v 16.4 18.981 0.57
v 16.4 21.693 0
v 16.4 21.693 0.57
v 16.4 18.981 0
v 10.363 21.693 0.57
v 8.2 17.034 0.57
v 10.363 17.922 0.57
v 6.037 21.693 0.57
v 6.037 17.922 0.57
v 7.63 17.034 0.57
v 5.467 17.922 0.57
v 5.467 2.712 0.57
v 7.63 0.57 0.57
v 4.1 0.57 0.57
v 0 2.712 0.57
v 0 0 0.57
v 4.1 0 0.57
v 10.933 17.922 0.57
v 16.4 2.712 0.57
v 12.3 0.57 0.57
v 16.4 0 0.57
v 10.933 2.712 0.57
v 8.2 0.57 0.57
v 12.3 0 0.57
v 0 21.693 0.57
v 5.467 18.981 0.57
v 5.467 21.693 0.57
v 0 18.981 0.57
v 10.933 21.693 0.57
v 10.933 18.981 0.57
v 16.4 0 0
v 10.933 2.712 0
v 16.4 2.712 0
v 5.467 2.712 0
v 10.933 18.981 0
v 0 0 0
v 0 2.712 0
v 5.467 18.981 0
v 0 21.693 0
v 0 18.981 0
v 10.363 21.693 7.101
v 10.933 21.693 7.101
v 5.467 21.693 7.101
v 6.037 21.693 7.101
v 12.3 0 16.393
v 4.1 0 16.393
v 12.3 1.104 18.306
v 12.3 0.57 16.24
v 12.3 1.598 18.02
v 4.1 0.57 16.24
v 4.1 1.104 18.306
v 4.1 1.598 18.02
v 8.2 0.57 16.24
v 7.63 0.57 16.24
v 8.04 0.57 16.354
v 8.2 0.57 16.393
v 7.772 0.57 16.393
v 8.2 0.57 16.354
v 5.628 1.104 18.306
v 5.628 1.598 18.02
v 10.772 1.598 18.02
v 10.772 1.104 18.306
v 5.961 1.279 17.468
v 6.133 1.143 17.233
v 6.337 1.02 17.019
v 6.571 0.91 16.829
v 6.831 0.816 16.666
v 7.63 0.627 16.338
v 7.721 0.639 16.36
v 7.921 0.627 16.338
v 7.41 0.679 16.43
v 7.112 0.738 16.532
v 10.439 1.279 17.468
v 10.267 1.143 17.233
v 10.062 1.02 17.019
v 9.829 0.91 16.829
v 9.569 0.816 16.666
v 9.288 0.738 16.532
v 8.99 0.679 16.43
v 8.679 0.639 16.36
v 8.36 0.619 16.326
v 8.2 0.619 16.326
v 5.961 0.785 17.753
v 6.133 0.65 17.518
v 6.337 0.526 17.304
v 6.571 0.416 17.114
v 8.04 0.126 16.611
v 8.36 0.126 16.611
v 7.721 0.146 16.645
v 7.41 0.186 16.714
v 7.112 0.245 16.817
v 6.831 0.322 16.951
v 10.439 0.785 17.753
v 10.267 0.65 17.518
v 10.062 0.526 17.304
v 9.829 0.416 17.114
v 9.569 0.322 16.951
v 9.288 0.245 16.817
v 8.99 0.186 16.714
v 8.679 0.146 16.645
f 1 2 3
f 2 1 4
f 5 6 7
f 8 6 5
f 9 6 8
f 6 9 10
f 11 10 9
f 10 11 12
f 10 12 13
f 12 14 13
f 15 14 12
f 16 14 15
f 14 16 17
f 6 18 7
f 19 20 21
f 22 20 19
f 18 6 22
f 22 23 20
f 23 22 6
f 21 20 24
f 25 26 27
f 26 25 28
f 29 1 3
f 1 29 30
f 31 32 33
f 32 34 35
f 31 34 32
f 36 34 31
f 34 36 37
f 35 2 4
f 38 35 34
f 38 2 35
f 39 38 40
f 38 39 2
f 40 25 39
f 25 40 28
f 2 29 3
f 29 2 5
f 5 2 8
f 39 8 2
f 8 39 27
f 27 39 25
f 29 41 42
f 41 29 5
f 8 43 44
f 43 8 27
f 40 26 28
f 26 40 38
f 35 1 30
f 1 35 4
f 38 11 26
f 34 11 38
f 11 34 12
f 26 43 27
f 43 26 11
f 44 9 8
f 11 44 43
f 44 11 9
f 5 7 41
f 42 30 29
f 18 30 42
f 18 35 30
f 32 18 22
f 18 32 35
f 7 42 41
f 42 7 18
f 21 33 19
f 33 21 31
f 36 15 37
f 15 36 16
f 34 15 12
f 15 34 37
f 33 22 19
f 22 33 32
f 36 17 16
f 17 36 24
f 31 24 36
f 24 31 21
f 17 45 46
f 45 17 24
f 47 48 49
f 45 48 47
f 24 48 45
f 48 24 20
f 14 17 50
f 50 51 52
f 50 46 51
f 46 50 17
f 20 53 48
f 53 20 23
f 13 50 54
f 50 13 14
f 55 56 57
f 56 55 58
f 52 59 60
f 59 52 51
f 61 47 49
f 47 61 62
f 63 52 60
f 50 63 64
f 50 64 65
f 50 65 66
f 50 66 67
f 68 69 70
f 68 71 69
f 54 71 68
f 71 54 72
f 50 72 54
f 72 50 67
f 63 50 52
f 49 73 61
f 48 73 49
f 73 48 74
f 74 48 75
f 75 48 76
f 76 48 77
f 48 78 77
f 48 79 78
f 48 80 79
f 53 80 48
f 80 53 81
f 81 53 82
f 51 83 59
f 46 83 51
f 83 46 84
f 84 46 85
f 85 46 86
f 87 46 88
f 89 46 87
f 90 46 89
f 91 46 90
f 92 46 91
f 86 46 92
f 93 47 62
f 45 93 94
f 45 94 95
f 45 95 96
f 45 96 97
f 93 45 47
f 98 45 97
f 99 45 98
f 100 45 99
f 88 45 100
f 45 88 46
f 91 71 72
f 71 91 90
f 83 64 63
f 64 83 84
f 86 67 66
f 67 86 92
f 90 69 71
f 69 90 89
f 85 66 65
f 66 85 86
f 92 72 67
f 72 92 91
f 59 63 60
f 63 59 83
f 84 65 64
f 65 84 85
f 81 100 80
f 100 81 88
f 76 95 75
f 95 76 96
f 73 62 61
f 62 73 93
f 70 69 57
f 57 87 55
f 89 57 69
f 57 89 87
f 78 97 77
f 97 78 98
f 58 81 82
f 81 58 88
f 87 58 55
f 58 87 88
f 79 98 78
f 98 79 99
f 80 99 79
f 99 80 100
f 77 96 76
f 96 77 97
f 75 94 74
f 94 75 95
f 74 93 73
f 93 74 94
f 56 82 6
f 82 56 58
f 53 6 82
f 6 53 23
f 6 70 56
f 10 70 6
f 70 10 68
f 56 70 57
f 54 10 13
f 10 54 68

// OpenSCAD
$fn = 50;

union() {
    translate([5.4667, 0, 0]) {
        cube([5.4667, 21.693, 0.57]);
    };
    union() {
        translate([0, 18.9814, 0]) {
            cube([16.4, 2.7116, 0.57]);
        };
        translate([5.4667, 21.693, 0]) {
            rotate([180, 270, 0]) {
                linear_extrude(height=0.57) {
                    polygon([[0, 0], [7.1014083110324, 0], [0, 4.1]]);
                };
            };
        };
        translate([10.3634, 21.693, 0]) {
            rotate([180, 270, 0]) {
                linear_extrude(height=0.57) {
                    polygon([[0, 0], [7.1014083110324, 0], [0, 4.1]]);
                };
            };
        };
    };
    difference() {
        union() {
            cube([16.4, 2.7116, 0.57]);
            translate([4.1, 0, 0]) {
                cube([8.2, 0.57, 16.393]);
            };
            translate([4.1, 0, 16.393]) {
                rotate([-30, 0, 0]) {
                    cube([8.2, 0.57, 2.2084]);
                };
            };
        };
        hull() {
            translate([8.2, 4.1501855733651, 17.2314]) {
                rotate([60, 0, 0]) {
                    cylinder(h=11, r2=2.555, r1=2.555);
                };
            };
            translate([8.2, 4.1501855733651, 19.7814]) {
                rotate([60, 0, 0]) {
                    cylinder(h=11, r2=3.577, r1=3.577);
                };
            };
        };
    };
    translate([8.2, 0.57, 0.57]) {
        rotate([0, 270, 0]) {
            linear_extrude(height=0.57) {
                polygon([[0, 0], [15.823, 0], [0, 16.463925350484]]);
            };
        };
    };
};
